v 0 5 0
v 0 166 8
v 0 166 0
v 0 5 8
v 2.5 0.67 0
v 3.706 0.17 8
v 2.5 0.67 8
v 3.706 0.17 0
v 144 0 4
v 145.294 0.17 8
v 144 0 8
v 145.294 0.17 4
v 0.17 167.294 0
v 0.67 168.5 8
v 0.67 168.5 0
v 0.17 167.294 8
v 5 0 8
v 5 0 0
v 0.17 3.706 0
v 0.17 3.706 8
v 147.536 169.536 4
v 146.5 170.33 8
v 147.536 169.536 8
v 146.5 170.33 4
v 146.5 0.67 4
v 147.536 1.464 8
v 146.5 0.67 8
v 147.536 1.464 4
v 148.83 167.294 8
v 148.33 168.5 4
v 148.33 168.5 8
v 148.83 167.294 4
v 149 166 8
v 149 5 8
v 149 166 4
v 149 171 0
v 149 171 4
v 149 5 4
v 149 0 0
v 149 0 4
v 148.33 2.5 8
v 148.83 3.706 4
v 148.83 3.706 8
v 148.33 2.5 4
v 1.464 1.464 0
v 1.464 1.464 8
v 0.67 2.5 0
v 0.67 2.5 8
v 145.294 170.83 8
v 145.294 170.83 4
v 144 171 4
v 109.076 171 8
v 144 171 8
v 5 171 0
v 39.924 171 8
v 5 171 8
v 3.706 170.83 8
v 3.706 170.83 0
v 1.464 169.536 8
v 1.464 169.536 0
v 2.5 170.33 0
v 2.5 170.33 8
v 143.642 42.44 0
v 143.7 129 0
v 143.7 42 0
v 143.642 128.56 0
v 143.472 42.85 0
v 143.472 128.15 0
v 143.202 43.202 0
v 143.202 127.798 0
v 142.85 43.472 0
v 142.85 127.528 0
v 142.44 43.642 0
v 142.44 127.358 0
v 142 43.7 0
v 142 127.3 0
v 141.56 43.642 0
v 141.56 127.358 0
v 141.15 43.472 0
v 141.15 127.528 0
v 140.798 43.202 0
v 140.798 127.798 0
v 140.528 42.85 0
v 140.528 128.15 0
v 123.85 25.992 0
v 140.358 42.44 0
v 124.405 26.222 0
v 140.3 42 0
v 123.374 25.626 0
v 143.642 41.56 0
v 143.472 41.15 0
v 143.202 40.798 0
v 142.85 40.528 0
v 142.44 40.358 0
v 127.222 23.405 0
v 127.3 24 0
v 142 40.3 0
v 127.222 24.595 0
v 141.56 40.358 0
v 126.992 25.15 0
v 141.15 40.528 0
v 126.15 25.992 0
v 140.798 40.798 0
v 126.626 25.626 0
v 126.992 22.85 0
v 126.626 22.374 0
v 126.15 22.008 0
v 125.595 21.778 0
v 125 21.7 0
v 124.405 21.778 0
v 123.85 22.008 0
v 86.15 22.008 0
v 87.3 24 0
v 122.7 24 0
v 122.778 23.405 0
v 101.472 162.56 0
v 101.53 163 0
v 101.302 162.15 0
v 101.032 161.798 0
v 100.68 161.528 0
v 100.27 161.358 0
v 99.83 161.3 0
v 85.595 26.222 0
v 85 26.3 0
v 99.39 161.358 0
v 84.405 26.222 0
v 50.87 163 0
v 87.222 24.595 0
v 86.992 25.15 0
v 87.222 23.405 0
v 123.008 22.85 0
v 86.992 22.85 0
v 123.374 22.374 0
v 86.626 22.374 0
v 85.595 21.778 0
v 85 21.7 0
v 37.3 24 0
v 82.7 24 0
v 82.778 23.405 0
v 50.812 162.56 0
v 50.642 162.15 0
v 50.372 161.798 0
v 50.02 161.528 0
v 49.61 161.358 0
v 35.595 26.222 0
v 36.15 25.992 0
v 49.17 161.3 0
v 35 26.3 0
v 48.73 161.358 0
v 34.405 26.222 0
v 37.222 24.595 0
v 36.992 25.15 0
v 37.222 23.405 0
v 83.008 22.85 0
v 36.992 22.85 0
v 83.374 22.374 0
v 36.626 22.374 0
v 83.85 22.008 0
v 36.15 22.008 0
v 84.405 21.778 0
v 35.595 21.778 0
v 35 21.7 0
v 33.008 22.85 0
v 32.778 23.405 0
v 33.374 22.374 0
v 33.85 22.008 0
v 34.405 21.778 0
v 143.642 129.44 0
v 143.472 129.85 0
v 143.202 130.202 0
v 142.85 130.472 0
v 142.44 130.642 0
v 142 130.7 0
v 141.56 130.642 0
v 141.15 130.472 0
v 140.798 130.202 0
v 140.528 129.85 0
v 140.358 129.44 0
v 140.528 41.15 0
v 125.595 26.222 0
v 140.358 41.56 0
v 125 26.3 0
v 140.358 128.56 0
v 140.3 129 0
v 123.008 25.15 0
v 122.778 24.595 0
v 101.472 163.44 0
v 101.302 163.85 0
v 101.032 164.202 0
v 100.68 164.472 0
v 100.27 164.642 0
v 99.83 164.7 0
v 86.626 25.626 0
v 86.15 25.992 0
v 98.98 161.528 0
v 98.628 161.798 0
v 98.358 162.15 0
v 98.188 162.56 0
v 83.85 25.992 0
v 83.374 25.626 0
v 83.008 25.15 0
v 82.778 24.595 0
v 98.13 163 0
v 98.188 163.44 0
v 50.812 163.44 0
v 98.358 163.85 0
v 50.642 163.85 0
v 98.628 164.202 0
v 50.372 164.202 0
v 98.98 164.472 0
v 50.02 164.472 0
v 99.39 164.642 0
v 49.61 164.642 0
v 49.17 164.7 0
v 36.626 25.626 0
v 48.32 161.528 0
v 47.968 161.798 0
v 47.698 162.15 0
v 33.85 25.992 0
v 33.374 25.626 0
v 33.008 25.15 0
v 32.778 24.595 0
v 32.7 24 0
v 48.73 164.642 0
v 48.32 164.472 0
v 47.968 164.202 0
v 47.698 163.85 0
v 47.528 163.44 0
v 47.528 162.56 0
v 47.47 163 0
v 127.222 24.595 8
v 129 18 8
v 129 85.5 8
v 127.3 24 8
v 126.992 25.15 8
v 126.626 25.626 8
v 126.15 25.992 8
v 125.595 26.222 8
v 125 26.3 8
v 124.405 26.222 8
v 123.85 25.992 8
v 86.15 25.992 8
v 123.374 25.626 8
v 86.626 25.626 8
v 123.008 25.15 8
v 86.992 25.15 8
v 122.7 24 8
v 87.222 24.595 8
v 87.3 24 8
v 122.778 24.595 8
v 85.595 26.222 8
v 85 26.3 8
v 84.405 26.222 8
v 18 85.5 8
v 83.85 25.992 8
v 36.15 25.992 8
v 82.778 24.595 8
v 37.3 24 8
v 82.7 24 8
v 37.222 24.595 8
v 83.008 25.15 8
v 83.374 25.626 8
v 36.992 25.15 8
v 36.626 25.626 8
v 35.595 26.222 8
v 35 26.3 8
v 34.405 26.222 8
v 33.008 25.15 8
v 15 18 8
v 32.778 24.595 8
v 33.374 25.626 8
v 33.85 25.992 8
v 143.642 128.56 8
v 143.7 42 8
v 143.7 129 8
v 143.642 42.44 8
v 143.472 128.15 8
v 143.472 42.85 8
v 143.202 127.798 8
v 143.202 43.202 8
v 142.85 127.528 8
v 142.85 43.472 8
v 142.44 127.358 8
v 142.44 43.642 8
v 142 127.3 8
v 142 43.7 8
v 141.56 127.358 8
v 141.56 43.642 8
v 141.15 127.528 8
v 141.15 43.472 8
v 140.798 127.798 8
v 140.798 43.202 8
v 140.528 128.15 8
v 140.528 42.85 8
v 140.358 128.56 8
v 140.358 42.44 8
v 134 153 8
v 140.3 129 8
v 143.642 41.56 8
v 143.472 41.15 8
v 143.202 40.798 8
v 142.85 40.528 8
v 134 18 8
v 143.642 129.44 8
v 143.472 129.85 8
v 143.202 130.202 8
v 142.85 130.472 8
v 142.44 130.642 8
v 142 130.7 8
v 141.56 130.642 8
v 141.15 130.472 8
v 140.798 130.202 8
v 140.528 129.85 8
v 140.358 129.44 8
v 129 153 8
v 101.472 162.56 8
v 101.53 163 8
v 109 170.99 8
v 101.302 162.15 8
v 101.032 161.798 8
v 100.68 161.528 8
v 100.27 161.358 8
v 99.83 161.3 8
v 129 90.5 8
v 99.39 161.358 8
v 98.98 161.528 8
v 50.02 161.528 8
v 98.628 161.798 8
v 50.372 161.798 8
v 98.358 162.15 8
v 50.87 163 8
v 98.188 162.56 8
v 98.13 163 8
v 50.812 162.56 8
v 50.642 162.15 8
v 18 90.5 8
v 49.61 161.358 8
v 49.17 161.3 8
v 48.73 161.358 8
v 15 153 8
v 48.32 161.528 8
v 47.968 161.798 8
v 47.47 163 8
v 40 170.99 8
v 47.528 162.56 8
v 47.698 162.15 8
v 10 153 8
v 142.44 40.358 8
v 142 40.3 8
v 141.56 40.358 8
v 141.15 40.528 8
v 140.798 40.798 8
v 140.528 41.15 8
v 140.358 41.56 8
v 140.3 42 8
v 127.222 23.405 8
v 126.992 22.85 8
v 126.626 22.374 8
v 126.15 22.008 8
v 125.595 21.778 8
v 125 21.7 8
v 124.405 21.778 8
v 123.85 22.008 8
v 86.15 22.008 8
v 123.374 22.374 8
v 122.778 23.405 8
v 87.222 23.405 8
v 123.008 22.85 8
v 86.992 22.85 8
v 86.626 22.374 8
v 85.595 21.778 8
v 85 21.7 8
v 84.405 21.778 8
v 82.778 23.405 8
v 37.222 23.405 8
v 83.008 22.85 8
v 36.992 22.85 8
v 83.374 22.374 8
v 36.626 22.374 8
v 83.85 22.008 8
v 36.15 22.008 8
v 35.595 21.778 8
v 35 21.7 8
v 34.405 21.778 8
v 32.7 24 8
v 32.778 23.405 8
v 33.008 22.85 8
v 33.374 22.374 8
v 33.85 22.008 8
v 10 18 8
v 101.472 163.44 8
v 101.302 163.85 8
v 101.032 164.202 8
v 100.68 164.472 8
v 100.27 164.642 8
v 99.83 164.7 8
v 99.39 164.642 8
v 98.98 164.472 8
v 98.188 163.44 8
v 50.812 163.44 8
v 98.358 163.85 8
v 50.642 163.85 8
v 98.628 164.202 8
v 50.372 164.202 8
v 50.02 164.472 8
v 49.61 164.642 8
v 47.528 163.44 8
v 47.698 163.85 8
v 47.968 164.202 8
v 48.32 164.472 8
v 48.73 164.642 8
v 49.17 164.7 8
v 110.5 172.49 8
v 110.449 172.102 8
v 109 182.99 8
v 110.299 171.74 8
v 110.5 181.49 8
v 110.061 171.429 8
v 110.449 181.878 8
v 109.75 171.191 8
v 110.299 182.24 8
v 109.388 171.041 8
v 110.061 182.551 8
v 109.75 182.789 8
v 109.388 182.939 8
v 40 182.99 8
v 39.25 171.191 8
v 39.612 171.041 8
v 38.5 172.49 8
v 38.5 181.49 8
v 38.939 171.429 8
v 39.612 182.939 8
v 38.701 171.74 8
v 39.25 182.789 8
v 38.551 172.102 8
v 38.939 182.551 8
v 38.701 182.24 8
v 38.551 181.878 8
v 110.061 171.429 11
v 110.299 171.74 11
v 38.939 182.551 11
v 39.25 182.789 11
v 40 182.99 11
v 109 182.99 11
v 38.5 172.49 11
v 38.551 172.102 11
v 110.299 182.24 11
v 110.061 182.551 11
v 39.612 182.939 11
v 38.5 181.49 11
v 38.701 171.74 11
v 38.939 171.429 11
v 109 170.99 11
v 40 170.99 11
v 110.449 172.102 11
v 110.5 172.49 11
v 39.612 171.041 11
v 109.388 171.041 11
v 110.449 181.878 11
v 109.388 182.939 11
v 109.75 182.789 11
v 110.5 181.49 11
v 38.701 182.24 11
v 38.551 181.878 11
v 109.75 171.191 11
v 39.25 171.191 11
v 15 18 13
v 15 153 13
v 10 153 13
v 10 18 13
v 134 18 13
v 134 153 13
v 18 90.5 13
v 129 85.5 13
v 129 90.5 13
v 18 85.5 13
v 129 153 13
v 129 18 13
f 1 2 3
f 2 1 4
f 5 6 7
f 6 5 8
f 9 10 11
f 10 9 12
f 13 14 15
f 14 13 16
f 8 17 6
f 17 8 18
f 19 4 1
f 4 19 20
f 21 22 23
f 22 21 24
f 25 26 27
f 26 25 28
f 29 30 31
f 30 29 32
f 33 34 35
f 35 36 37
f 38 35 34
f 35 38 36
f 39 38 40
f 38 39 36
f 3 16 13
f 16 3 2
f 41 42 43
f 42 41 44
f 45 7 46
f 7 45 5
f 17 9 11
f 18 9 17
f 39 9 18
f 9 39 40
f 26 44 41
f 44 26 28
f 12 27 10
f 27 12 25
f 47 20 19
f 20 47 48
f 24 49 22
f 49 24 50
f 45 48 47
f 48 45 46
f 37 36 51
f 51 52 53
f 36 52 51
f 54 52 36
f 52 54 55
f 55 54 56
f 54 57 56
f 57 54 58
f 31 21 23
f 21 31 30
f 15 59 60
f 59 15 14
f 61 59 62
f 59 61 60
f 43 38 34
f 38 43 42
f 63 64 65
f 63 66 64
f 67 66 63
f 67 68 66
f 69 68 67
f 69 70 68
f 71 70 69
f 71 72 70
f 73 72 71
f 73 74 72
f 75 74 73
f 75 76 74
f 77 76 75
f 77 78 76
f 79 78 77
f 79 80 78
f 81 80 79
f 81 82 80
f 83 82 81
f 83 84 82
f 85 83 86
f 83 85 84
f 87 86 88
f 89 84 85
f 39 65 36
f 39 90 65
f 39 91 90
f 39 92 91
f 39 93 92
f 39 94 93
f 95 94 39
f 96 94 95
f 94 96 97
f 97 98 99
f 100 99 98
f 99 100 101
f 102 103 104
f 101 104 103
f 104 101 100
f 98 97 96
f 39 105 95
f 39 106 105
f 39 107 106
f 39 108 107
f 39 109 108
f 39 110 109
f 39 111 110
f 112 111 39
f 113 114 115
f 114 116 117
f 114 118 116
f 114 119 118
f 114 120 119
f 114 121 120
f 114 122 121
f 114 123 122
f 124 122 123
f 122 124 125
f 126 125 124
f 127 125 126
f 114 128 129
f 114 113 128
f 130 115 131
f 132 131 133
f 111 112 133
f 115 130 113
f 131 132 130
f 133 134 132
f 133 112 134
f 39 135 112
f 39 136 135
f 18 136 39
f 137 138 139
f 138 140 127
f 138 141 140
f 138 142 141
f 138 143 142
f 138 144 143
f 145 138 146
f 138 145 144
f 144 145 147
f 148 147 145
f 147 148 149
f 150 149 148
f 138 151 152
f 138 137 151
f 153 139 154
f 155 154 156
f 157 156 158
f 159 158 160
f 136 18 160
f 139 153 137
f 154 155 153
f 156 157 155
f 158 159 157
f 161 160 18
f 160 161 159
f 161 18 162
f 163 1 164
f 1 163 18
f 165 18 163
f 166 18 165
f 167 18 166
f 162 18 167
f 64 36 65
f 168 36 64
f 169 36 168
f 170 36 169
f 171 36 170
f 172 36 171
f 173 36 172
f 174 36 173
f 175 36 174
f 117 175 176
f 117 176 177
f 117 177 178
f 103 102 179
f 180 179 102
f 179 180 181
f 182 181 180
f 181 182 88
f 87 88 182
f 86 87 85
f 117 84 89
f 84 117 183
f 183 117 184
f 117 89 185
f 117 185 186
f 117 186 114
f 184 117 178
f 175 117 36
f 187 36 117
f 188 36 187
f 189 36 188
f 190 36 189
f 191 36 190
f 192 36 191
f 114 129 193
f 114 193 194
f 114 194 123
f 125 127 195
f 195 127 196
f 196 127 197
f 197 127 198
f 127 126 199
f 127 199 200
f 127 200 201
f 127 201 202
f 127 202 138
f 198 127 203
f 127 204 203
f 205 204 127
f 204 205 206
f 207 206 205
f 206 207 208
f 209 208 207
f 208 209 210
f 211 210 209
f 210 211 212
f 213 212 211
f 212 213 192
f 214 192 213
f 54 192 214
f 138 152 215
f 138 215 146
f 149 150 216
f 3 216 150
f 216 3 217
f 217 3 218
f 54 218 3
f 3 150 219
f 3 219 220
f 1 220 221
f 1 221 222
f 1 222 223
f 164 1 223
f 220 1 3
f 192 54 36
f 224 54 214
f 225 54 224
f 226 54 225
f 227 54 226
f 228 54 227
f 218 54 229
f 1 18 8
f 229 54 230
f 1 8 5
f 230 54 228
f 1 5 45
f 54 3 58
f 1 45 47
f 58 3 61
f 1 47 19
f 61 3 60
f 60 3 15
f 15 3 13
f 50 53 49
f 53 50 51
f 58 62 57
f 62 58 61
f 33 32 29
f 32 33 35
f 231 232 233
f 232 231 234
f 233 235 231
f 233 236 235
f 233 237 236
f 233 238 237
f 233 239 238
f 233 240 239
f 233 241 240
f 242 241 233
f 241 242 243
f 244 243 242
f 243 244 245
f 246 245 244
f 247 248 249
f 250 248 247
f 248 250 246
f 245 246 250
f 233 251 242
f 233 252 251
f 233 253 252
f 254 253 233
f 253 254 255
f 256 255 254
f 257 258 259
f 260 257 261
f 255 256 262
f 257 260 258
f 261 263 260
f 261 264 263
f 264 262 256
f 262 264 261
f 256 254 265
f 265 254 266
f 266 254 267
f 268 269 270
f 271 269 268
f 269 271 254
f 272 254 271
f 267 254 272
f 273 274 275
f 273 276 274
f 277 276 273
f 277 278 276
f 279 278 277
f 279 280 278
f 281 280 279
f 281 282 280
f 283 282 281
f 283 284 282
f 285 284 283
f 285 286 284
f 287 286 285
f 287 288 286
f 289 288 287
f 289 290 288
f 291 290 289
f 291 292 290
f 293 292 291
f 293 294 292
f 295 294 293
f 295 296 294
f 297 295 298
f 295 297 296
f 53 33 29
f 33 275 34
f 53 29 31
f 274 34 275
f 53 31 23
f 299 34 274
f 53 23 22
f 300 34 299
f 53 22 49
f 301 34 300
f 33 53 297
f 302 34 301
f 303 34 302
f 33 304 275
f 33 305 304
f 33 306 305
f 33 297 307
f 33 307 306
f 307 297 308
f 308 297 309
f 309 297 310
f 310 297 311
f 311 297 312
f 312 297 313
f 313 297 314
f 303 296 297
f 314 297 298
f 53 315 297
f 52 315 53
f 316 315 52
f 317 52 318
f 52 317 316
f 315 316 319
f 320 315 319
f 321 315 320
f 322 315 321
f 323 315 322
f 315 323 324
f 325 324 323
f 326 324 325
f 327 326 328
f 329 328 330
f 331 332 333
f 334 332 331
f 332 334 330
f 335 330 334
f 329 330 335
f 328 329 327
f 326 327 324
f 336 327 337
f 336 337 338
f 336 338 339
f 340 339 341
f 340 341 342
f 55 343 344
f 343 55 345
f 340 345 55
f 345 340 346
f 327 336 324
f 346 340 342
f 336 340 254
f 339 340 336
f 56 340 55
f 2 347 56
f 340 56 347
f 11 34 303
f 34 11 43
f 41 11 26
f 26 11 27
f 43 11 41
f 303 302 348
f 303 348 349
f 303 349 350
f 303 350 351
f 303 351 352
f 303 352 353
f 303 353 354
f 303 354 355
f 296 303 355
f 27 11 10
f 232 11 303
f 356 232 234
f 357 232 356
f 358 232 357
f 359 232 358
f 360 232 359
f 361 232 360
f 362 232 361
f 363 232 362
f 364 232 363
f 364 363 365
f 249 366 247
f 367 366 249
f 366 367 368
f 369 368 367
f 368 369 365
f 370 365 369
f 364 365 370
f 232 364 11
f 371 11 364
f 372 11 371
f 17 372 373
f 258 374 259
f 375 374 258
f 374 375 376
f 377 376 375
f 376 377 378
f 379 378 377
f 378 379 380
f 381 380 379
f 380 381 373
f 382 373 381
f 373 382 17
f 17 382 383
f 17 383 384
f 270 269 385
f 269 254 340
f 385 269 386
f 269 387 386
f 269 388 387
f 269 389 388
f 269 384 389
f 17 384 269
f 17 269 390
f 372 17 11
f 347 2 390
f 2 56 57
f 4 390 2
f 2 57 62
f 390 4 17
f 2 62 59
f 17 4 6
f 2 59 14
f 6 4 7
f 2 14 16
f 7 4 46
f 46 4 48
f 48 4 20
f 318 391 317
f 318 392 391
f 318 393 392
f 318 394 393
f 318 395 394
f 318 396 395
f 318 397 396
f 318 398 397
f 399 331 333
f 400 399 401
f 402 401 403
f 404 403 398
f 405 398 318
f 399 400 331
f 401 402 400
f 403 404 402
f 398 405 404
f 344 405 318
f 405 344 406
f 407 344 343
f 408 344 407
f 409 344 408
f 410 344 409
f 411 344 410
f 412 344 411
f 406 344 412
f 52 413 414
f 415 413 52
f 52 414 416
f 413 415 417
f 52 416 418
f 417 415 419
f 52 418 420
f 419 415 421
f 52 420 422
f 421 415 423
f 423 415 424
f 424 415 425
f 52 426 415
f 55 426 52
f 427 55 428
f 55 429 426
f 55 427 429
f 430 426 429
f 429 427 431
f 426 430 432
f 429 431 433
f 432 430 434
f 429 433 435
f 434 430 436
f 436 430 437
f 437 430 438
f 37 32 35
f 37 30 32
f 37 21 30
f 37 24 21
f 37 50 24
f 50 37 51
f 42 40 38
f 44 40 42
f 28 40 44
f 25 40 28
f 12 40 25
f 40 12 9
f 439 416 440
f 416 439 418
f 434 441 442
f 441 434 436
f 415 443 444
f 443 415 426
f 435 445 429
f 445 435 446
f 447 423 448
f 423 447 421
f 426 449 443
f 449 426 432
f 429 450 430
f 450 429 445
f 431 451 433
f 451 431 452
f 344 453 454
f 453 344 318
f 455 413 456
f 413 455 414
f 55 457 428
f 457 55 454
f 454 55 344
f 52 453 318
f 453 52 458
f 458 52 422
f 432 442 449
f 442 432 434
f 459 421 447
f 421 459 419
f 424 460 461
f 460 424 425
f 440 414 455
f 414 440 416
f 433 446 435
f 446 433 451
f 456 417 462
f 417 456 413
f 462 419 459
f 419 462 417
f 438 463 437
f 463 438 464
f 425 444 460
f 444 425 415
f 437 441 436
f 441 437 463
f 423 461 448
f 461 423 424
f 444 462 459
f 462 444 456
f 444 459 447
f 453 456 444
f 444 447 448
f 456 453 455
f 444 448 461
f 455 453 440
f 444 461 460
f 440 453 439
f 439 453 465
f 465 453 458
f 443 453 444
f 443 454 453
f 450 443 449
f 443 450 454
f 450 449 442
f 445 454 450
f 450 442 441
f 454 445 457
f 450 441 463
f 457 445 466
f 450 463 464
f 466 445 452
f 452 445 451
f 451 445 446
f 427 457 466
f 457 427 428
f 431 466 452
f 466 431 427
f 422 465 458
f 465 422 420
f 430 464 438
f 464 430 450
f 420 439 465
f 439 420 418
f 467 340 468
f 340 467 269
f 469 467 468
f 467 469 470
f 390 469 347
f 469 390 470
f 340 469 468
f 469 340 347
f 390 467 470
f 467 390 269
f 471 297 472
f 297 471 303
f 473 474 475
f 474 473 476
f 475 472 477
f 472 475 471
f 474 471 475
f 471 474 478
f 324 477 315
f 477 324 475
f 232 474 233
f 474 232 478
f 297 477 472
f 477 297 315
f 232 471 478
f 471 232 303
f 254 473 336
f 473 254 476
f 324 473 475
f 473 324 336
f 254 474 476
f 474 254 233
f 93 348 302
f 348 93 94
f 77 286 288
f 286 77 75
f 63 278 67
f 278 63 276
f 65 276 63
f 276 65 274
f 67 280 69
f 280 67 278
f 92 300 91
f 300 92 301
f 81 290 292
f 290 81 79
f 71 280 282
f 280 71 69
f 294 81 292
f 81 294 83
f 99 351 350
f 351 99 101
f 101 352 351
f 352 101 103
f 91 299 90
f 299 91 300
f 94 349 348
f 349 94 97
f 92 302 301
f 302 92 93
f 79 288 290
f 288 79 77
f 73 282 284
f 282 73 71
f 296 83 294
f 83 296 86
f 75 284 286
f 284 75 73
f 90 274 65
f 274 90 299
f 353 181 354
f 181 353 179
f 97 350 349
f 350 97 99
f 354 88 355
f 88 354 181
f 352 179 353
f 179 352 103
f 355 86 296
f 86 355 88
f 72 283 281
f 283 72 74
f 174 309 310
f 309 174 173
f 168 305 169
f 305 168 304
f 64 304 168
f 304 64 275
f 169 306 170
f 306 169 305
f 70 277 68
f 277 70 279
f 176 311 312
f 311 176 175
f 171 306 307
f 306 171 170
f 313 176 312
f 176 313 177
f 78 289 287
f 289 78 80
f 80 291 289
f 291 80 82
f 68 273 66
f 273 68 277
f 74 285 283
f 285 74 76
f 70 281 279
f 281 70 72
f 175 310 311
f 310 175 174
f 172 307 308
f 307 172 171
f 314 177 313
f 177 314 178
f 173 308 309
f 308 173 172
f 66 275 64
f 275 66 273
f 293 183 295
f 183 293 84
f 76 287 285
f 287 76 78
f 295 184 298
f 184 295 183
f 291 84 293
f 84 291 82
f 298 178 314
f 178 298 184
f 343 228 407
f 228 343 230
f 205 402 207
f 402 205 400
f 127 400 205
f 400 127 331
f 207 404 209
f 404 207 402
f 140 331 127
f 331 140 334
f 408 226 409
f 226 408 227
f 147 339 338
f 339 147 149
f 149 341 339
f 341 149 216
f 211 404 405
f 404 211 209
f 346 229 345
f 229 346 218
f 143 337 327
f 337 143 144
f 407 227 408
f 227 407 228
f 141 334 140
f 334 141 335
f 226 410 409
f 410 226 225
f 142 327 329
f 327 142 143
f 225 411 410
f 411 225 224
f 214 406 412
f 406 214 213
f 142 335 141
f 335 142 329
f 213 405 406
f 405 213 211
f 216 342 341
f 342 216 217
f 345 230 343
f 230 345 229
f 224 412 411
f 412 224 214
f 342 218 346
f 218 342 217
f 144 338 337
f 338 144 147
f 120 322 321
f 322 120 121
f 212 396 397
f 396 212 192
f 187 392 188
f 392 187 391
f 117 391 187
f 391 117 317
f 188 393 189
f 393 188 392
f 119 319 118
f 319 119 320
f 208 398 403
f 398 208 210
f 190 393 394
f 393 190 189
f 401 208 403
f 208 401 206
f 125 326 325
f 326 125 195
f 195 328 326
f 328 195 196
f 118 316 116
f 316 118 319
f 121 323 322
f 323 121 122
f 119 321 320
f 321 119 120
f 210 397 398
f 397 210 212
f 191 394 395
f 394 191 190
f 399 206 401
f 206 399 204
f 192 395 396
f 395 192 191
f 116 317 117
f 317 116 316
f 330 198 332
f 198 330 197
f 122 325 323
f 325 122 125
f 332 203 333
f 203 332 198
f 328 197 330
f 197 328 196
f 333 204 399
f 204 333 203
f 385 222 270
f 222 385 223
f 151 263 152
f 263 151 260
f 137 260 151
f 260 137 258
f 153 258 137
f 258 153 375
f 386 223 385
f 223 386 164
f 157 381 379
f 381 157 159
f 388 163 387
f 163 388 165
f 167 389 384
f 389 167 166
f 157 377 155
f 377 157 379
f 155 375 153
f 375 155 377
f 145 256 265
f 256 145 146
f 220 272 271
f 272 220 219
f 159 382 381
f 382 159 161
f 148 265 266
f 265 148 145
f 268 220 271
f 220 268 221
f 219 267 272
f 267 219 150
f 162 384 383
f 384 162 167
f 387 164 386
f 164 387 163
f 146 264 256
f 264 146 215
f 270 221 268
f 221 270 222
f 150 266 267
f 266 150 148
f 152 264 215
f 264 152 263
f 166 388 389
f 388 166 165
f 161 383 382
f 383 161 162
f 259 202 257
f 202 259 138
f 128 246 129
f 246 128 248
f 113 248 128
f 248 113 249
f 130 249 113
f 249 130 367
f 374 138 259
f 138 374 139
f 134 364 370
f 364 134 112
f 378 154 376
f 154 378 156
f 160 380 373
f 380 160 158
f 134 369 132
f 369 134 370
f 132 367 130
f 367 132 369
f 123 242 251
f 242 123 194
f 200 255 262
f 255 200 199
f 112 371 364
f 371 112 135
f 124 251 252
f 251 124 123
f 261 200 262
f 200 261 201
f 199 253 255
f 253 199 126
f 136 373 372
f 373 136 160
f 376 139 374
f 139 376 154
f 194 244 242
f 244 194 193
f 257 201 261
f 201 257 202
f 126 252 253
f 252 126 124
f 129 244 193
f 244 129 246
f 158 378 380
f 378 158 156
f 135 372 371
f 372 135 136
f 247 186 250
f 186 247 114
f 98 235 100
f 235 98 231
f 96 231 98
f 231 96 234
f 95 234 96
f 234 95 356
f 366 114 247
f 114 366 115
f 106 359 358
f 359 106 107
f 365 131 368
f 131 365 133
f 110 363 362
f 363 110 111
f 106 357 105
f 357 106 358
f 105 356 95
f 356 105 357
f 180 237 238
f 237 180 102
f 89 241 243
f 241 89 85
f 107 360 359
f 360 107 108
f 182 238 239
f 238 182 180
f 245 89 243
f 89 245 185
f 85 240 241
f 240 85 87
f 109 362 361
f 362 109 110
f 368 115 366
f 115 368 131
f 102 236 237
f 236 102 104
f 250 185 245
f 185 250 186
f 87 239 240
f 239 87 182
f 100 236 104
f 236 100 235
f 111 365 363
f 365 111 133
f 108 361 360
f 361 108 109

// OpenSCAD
// file: 00_parameters.scad
// TenderCells DoorCell V1 shared parameters
// Units: millimeters

overall_w = 438;
overall_h = 368;
frame_depth = 56;

clear_w = 242;
clear_h = 312;

rail_thick = 32;
jamb_w = 48;
motor_jamb_w = 78;

// Printability targets
target_bed_xy = 220;
comfortable_part_max = 180;

// Modular frame split dimensions
top_seg_len = overall_w / 3;
bottom_seg_len = overall_w / 3;
left_jamb_seg_h = overall_h / 2;
right_lower_h = 118;
right_motor_h = 156;
right_upper_h = overall_h - right_lower_h - right_motor_h;

// Low-cost electronics envelope used by DoorCell V1.4.
// These dimensions are based on common generic modules, not a custom PCB.
esp32_board = [58, 31, 8];
drv8871_board = [31, 26, 7];
current_sensor_board = [26, 22, 7];
lm2596_board = [44, 22, 14];
inline_fuse_body = [45, 15, 14];
cn3065_board = [44, 24, 8];
electronics_clearance = 1.5;
controller_wall = 3;
controller_box_w = 170;
controller_box_h = 115;
controller_box_d = 46;
controller_lid_insert_offset = 11;
controller_m12_gland_d = 12.8;
controller_m10_gland_d = 10.6;
controller_m8_gland_d = 8.4;
controller_button_d = 16.2;

// Brass heat-set/push-in insert features.
insert_post_d = 8.0;
insert_post_h = 8.0;
insert_pilot_d = 4.6;
insert_pilot_depth = 6.5;
hold_down_screw_clearance = 3.4;

// Motor envelope for common 25GA/JGA25-370 gearmotors with optional encoder.
motor_body_d = 25.0;
motor_body_clearance_d = 27.2;
motor_body_len = 65;
motor_encoder_clearance = 16;
motor_mount_plate = [72, 92, 12];
motor_mount_cradle = [54, 74, 28];

// Optional solar add-on.
solar_panel_w = 145;
solar_panel_h = 145;
solar_panel_t = 4.0;
solar_panel_frame_border = 10;
solar_panel_frame_w = solar_panel_w + 2*solar_panel_frame_border;
solar_panel_frame_h = solar_panel_h + 2*solar_panel_frame_border;
solar_panel_back_depth = 14;
solar_panel_lip_overlap = 3;
solar_ball_d = 22;
solar_ball_socket_clearance = 0.45;
solar_mount_m5 = 5.4;

// Tongue-and-groove frame joints
// Fit target: common FDM printers with PETG/ASA.
// Clearance is per side, so sockets add 2x this value.
tongue_len = 18;
tongue_w = 22;
tongue_z = 10;
tongue_clearance_side = 0.25;
tongue_socket_depth_extra = 0.60;

door_w = 270;
door_h = 326;
door_t = 8;

track_gap = 11;
track_depth = 12;

// Rack-and-pinion drive
// Metric module gear math:
// circular_pitch = PI * module
// pitch_diameter = module * tooth_count
// outside_diameter = module * (tooth_count + 2)
// root_diameter = module * (tooth_count - 2.5)
gear_module = 2.0;
pressure_angle = 20;
gear_backlash = 0.20; // mm removed from rack tooth thickness at pitch line

pinion_teeth = 16;
pinion_pitch_d = gear_module * pinion_teeth;
pinion_pitch_radius = pinion_pitch_d / 2;
pinion_outer_d = gear_module * (pinion_teeth + 2);
pinion_outer_radius = pinion_outer_d / 2;
pinion_root_d = gear_module * (pinion_teeth - 2.5);
pinion_root_radius = pinion_root_d / 2;
pinion_thick = 12;
shaft_d = 6.2;

rack_tooth_count = 15;
rack_circular_pitch = 3.141592653589793 * gear_module;
rack_len = rack_circular_pitch * rack_tooth_count;
rack_w = 18;
rack_t = 6;
rack_addendum = gear_module;
rack_dedendum = 1.25 * gear_module;
rack_tooth_h = rack_addendum + rack_dedendum;
rack_pitch_line_z = rack_dedendum;
rack_tooth_pitch_thickness = rack_circular_pitch / 2 - gear_backlash;
rack_tooth_top_w = rack_tooth_pitch_thickness - 2 * rack_addendum * tan(pressure_angle);
rack_tooth_root_w = rack_tooth_pitch_thickness + 2 * rack_dedendum * tan(pressure_angle);

screw_m3 = 3.4;
screw_m4 = 4.5;
insert_m3 = 4.6;

eps = 0.01;

module rounded_box(size=[10,10,10], r=2) {
  hull() {
    translate([r,r,0]) cylinder(h=size[2], r=r, $fn=24);
    translate([size[0]-r,r,0]) cylinder(h=size[2], r=r, $fn=24);
    translate([r,size[1]-r,0]) cylinder(h=size[2], r=r, $fn=24);
    translate([size[0]-r,size[1]-r,0]) cylinder(h=size[2], r=r, $fn=24);
  }
}

module m3_clearance_hole(h=20) {
  cylinder(h=h, d=screw_m3, $fn=24);
}

module m4_clearance_hole(h=20) {
  cylinder(h=h, d=screw_m4, $fn=24);
}

module heat_insert_hole(h=6) {
  cylinder(h=h, d=insert_m3, $fn=24);
}

module heat_insert_post(h=insert_post_h, d=insert_post_d) {
  difference() {
    cylinder(h=h, d=d, $fn=32);
    translate([0,0,h-insert_pilot_depth+eps])
      cylinder(h=insert_pilot_depth+eps, d=insert_pilot_d, $fn=24);
  }
}

module m3_hold_down_slot(length=10, h=4) {
  hull() {
    translate([-length/2,0,0]) cylinder(h=h, d=hold_down_screw_clearance, $fn=20);
    translate([ length/2,0,0]) cylinder(h=h, d=hold_down_screw_clearance, $fn=20);
  }
}

module rail_channel(length=100) {
  cube([length, track_gap, track_depth]);
}

module frame_tongue_x() {
  rounded_box([tongue_len, tongue_w, tongue_z], r=1.5);
}

module frame_socket_x() {
  cube([
    tongue_len + tongue_socket_depth_extra,
    tongue_w + 2*tongue_clearance_side,
    tongue_z + 2*tongue_clearance_side
  ]);
}

module frame_tongue_y() {
  rounded_box([tongue_w, tongue_len, tongue_z], r=1.5);
}

module frame_socket_y() {
  cube([
    tongue_w + 2*tongue_clearance_side,
    tongue_len + tongue_socket_depth_extra,
    tongue_z + 2*tongue_clearance_side
  ]);
}

module rack_teeth(len=rack_len) {
  teeth = floor(len / rack_circular_pitch);
  for (i=[0:teeth-1]) {
    center = i*rack_circular_pitch + rack_circular_pitch/2;
    translate([0, 0, rack_t-0.20])
      linear_extrude(height=rack_w)
        polygon(points=[
          [center - rack_tooth_root_w/2, 0],
          [center + rack_tooth_root_w/2, 0],
          [center + rack_tooth_top_w/2, rack_tooth_h],
          [center - rack_tooth_top_w/2, rack_tooth_h]
        ]);
  }
}

function polar_point(r, a) = [r * cos(a), r * sin(a)];
// file: sliding_door_modular_common.scad
include <00_parameters.scad>

door_part_w = door_w/2 + 14;
door_part_h = door_h/2 + 8;
door_mid_overlap = 14;
door_v_overlap = 12;

module door_tongue_y(width=72) {
  rounded_box([width, door_v_overlap, 3], r=1.5);
}

module door_socket_y(width=74) {
  cube([width, door_v_overlap + 2*tongue_clearance_side, 3.8]);
}

module sliding_door_quadrant(side="left", row="lower") {
  difference() {
    union() {
      rounded_box([door_part_w, door_part_h, door_t], r=5);

      // Vertical center lap between left and right panels.
      if (side == "left") {
        translate([door_part_w-door_mid_overlap, 0, 0])
          cube([door_mid_overlap, door_part_h, door_t/2]);
      } else {
        translate([0, 0, door_t/2])
          cube([door_mid_overlap, door_part_h, door_t/2]);
      }

      // Horizontal lap between lower and upper panels.
      if (row == "lower") {
        translate([door_part_w/2-36, door_part_h-eps, door_t])
          door_tongue_y(width=72);
      }

      // Stiffening ribs.
      translate([10, 18, door_t])
        cube([5, door_part_h-36, 5]);
      translate([door_part_w-20, 18, door_t])
        cube([5, door_part_h-36, 5]);
      translate([18, door_part_h/2, door_t])
        cube([door_part_w-36, 5, 5]);
    }

    if (row == "upper") {
      translate([door_part_w/2-37, -eps, door_t-0.2])
        door_socket_y(width=74);
    }

    // Center lap fastener holes.
    if (side == "left") {
      for (y=[42, door_part_h-42]) {
        translate([door_part_w-door_mid_overlap/2, y, -eps])
          m3_clearance_hole(h=door_t+10);
      }
    } else {
      for (y=[42, door_part_h-42]) {
        translate([door_mid_overlap/2, y, -eps])
          heat_insert_hole(h=door_t+1);
      }
    }

    // Horizontal split fastener holes.
    if (row == "lower") {
      for (x=[door_part_w*0.33, door_part_w*0.67]) {
        translate([x, door_part_h-8, -eps])
          m3_clearance_hole(h=door_t+10);
      }
    } else {
      for (x=[door_part_w*0.33, door_part_w*0.67]) {
        translate([x, 8, -eps])
          heat_insert_hole(h=door_t+1);
      }
    }

    // Rack mounting holes only on lower row.
    if (row == "lower") {
      for (x=[35, 85, 125]) {
        translate([x, 24, -eps]) heat_insert_hole(h=door_t+1);
      }
    }
  }
}
// main file
include <sliding_door_modular_common.scad>

sliding_door_quadrant(side="left", row="lower");
